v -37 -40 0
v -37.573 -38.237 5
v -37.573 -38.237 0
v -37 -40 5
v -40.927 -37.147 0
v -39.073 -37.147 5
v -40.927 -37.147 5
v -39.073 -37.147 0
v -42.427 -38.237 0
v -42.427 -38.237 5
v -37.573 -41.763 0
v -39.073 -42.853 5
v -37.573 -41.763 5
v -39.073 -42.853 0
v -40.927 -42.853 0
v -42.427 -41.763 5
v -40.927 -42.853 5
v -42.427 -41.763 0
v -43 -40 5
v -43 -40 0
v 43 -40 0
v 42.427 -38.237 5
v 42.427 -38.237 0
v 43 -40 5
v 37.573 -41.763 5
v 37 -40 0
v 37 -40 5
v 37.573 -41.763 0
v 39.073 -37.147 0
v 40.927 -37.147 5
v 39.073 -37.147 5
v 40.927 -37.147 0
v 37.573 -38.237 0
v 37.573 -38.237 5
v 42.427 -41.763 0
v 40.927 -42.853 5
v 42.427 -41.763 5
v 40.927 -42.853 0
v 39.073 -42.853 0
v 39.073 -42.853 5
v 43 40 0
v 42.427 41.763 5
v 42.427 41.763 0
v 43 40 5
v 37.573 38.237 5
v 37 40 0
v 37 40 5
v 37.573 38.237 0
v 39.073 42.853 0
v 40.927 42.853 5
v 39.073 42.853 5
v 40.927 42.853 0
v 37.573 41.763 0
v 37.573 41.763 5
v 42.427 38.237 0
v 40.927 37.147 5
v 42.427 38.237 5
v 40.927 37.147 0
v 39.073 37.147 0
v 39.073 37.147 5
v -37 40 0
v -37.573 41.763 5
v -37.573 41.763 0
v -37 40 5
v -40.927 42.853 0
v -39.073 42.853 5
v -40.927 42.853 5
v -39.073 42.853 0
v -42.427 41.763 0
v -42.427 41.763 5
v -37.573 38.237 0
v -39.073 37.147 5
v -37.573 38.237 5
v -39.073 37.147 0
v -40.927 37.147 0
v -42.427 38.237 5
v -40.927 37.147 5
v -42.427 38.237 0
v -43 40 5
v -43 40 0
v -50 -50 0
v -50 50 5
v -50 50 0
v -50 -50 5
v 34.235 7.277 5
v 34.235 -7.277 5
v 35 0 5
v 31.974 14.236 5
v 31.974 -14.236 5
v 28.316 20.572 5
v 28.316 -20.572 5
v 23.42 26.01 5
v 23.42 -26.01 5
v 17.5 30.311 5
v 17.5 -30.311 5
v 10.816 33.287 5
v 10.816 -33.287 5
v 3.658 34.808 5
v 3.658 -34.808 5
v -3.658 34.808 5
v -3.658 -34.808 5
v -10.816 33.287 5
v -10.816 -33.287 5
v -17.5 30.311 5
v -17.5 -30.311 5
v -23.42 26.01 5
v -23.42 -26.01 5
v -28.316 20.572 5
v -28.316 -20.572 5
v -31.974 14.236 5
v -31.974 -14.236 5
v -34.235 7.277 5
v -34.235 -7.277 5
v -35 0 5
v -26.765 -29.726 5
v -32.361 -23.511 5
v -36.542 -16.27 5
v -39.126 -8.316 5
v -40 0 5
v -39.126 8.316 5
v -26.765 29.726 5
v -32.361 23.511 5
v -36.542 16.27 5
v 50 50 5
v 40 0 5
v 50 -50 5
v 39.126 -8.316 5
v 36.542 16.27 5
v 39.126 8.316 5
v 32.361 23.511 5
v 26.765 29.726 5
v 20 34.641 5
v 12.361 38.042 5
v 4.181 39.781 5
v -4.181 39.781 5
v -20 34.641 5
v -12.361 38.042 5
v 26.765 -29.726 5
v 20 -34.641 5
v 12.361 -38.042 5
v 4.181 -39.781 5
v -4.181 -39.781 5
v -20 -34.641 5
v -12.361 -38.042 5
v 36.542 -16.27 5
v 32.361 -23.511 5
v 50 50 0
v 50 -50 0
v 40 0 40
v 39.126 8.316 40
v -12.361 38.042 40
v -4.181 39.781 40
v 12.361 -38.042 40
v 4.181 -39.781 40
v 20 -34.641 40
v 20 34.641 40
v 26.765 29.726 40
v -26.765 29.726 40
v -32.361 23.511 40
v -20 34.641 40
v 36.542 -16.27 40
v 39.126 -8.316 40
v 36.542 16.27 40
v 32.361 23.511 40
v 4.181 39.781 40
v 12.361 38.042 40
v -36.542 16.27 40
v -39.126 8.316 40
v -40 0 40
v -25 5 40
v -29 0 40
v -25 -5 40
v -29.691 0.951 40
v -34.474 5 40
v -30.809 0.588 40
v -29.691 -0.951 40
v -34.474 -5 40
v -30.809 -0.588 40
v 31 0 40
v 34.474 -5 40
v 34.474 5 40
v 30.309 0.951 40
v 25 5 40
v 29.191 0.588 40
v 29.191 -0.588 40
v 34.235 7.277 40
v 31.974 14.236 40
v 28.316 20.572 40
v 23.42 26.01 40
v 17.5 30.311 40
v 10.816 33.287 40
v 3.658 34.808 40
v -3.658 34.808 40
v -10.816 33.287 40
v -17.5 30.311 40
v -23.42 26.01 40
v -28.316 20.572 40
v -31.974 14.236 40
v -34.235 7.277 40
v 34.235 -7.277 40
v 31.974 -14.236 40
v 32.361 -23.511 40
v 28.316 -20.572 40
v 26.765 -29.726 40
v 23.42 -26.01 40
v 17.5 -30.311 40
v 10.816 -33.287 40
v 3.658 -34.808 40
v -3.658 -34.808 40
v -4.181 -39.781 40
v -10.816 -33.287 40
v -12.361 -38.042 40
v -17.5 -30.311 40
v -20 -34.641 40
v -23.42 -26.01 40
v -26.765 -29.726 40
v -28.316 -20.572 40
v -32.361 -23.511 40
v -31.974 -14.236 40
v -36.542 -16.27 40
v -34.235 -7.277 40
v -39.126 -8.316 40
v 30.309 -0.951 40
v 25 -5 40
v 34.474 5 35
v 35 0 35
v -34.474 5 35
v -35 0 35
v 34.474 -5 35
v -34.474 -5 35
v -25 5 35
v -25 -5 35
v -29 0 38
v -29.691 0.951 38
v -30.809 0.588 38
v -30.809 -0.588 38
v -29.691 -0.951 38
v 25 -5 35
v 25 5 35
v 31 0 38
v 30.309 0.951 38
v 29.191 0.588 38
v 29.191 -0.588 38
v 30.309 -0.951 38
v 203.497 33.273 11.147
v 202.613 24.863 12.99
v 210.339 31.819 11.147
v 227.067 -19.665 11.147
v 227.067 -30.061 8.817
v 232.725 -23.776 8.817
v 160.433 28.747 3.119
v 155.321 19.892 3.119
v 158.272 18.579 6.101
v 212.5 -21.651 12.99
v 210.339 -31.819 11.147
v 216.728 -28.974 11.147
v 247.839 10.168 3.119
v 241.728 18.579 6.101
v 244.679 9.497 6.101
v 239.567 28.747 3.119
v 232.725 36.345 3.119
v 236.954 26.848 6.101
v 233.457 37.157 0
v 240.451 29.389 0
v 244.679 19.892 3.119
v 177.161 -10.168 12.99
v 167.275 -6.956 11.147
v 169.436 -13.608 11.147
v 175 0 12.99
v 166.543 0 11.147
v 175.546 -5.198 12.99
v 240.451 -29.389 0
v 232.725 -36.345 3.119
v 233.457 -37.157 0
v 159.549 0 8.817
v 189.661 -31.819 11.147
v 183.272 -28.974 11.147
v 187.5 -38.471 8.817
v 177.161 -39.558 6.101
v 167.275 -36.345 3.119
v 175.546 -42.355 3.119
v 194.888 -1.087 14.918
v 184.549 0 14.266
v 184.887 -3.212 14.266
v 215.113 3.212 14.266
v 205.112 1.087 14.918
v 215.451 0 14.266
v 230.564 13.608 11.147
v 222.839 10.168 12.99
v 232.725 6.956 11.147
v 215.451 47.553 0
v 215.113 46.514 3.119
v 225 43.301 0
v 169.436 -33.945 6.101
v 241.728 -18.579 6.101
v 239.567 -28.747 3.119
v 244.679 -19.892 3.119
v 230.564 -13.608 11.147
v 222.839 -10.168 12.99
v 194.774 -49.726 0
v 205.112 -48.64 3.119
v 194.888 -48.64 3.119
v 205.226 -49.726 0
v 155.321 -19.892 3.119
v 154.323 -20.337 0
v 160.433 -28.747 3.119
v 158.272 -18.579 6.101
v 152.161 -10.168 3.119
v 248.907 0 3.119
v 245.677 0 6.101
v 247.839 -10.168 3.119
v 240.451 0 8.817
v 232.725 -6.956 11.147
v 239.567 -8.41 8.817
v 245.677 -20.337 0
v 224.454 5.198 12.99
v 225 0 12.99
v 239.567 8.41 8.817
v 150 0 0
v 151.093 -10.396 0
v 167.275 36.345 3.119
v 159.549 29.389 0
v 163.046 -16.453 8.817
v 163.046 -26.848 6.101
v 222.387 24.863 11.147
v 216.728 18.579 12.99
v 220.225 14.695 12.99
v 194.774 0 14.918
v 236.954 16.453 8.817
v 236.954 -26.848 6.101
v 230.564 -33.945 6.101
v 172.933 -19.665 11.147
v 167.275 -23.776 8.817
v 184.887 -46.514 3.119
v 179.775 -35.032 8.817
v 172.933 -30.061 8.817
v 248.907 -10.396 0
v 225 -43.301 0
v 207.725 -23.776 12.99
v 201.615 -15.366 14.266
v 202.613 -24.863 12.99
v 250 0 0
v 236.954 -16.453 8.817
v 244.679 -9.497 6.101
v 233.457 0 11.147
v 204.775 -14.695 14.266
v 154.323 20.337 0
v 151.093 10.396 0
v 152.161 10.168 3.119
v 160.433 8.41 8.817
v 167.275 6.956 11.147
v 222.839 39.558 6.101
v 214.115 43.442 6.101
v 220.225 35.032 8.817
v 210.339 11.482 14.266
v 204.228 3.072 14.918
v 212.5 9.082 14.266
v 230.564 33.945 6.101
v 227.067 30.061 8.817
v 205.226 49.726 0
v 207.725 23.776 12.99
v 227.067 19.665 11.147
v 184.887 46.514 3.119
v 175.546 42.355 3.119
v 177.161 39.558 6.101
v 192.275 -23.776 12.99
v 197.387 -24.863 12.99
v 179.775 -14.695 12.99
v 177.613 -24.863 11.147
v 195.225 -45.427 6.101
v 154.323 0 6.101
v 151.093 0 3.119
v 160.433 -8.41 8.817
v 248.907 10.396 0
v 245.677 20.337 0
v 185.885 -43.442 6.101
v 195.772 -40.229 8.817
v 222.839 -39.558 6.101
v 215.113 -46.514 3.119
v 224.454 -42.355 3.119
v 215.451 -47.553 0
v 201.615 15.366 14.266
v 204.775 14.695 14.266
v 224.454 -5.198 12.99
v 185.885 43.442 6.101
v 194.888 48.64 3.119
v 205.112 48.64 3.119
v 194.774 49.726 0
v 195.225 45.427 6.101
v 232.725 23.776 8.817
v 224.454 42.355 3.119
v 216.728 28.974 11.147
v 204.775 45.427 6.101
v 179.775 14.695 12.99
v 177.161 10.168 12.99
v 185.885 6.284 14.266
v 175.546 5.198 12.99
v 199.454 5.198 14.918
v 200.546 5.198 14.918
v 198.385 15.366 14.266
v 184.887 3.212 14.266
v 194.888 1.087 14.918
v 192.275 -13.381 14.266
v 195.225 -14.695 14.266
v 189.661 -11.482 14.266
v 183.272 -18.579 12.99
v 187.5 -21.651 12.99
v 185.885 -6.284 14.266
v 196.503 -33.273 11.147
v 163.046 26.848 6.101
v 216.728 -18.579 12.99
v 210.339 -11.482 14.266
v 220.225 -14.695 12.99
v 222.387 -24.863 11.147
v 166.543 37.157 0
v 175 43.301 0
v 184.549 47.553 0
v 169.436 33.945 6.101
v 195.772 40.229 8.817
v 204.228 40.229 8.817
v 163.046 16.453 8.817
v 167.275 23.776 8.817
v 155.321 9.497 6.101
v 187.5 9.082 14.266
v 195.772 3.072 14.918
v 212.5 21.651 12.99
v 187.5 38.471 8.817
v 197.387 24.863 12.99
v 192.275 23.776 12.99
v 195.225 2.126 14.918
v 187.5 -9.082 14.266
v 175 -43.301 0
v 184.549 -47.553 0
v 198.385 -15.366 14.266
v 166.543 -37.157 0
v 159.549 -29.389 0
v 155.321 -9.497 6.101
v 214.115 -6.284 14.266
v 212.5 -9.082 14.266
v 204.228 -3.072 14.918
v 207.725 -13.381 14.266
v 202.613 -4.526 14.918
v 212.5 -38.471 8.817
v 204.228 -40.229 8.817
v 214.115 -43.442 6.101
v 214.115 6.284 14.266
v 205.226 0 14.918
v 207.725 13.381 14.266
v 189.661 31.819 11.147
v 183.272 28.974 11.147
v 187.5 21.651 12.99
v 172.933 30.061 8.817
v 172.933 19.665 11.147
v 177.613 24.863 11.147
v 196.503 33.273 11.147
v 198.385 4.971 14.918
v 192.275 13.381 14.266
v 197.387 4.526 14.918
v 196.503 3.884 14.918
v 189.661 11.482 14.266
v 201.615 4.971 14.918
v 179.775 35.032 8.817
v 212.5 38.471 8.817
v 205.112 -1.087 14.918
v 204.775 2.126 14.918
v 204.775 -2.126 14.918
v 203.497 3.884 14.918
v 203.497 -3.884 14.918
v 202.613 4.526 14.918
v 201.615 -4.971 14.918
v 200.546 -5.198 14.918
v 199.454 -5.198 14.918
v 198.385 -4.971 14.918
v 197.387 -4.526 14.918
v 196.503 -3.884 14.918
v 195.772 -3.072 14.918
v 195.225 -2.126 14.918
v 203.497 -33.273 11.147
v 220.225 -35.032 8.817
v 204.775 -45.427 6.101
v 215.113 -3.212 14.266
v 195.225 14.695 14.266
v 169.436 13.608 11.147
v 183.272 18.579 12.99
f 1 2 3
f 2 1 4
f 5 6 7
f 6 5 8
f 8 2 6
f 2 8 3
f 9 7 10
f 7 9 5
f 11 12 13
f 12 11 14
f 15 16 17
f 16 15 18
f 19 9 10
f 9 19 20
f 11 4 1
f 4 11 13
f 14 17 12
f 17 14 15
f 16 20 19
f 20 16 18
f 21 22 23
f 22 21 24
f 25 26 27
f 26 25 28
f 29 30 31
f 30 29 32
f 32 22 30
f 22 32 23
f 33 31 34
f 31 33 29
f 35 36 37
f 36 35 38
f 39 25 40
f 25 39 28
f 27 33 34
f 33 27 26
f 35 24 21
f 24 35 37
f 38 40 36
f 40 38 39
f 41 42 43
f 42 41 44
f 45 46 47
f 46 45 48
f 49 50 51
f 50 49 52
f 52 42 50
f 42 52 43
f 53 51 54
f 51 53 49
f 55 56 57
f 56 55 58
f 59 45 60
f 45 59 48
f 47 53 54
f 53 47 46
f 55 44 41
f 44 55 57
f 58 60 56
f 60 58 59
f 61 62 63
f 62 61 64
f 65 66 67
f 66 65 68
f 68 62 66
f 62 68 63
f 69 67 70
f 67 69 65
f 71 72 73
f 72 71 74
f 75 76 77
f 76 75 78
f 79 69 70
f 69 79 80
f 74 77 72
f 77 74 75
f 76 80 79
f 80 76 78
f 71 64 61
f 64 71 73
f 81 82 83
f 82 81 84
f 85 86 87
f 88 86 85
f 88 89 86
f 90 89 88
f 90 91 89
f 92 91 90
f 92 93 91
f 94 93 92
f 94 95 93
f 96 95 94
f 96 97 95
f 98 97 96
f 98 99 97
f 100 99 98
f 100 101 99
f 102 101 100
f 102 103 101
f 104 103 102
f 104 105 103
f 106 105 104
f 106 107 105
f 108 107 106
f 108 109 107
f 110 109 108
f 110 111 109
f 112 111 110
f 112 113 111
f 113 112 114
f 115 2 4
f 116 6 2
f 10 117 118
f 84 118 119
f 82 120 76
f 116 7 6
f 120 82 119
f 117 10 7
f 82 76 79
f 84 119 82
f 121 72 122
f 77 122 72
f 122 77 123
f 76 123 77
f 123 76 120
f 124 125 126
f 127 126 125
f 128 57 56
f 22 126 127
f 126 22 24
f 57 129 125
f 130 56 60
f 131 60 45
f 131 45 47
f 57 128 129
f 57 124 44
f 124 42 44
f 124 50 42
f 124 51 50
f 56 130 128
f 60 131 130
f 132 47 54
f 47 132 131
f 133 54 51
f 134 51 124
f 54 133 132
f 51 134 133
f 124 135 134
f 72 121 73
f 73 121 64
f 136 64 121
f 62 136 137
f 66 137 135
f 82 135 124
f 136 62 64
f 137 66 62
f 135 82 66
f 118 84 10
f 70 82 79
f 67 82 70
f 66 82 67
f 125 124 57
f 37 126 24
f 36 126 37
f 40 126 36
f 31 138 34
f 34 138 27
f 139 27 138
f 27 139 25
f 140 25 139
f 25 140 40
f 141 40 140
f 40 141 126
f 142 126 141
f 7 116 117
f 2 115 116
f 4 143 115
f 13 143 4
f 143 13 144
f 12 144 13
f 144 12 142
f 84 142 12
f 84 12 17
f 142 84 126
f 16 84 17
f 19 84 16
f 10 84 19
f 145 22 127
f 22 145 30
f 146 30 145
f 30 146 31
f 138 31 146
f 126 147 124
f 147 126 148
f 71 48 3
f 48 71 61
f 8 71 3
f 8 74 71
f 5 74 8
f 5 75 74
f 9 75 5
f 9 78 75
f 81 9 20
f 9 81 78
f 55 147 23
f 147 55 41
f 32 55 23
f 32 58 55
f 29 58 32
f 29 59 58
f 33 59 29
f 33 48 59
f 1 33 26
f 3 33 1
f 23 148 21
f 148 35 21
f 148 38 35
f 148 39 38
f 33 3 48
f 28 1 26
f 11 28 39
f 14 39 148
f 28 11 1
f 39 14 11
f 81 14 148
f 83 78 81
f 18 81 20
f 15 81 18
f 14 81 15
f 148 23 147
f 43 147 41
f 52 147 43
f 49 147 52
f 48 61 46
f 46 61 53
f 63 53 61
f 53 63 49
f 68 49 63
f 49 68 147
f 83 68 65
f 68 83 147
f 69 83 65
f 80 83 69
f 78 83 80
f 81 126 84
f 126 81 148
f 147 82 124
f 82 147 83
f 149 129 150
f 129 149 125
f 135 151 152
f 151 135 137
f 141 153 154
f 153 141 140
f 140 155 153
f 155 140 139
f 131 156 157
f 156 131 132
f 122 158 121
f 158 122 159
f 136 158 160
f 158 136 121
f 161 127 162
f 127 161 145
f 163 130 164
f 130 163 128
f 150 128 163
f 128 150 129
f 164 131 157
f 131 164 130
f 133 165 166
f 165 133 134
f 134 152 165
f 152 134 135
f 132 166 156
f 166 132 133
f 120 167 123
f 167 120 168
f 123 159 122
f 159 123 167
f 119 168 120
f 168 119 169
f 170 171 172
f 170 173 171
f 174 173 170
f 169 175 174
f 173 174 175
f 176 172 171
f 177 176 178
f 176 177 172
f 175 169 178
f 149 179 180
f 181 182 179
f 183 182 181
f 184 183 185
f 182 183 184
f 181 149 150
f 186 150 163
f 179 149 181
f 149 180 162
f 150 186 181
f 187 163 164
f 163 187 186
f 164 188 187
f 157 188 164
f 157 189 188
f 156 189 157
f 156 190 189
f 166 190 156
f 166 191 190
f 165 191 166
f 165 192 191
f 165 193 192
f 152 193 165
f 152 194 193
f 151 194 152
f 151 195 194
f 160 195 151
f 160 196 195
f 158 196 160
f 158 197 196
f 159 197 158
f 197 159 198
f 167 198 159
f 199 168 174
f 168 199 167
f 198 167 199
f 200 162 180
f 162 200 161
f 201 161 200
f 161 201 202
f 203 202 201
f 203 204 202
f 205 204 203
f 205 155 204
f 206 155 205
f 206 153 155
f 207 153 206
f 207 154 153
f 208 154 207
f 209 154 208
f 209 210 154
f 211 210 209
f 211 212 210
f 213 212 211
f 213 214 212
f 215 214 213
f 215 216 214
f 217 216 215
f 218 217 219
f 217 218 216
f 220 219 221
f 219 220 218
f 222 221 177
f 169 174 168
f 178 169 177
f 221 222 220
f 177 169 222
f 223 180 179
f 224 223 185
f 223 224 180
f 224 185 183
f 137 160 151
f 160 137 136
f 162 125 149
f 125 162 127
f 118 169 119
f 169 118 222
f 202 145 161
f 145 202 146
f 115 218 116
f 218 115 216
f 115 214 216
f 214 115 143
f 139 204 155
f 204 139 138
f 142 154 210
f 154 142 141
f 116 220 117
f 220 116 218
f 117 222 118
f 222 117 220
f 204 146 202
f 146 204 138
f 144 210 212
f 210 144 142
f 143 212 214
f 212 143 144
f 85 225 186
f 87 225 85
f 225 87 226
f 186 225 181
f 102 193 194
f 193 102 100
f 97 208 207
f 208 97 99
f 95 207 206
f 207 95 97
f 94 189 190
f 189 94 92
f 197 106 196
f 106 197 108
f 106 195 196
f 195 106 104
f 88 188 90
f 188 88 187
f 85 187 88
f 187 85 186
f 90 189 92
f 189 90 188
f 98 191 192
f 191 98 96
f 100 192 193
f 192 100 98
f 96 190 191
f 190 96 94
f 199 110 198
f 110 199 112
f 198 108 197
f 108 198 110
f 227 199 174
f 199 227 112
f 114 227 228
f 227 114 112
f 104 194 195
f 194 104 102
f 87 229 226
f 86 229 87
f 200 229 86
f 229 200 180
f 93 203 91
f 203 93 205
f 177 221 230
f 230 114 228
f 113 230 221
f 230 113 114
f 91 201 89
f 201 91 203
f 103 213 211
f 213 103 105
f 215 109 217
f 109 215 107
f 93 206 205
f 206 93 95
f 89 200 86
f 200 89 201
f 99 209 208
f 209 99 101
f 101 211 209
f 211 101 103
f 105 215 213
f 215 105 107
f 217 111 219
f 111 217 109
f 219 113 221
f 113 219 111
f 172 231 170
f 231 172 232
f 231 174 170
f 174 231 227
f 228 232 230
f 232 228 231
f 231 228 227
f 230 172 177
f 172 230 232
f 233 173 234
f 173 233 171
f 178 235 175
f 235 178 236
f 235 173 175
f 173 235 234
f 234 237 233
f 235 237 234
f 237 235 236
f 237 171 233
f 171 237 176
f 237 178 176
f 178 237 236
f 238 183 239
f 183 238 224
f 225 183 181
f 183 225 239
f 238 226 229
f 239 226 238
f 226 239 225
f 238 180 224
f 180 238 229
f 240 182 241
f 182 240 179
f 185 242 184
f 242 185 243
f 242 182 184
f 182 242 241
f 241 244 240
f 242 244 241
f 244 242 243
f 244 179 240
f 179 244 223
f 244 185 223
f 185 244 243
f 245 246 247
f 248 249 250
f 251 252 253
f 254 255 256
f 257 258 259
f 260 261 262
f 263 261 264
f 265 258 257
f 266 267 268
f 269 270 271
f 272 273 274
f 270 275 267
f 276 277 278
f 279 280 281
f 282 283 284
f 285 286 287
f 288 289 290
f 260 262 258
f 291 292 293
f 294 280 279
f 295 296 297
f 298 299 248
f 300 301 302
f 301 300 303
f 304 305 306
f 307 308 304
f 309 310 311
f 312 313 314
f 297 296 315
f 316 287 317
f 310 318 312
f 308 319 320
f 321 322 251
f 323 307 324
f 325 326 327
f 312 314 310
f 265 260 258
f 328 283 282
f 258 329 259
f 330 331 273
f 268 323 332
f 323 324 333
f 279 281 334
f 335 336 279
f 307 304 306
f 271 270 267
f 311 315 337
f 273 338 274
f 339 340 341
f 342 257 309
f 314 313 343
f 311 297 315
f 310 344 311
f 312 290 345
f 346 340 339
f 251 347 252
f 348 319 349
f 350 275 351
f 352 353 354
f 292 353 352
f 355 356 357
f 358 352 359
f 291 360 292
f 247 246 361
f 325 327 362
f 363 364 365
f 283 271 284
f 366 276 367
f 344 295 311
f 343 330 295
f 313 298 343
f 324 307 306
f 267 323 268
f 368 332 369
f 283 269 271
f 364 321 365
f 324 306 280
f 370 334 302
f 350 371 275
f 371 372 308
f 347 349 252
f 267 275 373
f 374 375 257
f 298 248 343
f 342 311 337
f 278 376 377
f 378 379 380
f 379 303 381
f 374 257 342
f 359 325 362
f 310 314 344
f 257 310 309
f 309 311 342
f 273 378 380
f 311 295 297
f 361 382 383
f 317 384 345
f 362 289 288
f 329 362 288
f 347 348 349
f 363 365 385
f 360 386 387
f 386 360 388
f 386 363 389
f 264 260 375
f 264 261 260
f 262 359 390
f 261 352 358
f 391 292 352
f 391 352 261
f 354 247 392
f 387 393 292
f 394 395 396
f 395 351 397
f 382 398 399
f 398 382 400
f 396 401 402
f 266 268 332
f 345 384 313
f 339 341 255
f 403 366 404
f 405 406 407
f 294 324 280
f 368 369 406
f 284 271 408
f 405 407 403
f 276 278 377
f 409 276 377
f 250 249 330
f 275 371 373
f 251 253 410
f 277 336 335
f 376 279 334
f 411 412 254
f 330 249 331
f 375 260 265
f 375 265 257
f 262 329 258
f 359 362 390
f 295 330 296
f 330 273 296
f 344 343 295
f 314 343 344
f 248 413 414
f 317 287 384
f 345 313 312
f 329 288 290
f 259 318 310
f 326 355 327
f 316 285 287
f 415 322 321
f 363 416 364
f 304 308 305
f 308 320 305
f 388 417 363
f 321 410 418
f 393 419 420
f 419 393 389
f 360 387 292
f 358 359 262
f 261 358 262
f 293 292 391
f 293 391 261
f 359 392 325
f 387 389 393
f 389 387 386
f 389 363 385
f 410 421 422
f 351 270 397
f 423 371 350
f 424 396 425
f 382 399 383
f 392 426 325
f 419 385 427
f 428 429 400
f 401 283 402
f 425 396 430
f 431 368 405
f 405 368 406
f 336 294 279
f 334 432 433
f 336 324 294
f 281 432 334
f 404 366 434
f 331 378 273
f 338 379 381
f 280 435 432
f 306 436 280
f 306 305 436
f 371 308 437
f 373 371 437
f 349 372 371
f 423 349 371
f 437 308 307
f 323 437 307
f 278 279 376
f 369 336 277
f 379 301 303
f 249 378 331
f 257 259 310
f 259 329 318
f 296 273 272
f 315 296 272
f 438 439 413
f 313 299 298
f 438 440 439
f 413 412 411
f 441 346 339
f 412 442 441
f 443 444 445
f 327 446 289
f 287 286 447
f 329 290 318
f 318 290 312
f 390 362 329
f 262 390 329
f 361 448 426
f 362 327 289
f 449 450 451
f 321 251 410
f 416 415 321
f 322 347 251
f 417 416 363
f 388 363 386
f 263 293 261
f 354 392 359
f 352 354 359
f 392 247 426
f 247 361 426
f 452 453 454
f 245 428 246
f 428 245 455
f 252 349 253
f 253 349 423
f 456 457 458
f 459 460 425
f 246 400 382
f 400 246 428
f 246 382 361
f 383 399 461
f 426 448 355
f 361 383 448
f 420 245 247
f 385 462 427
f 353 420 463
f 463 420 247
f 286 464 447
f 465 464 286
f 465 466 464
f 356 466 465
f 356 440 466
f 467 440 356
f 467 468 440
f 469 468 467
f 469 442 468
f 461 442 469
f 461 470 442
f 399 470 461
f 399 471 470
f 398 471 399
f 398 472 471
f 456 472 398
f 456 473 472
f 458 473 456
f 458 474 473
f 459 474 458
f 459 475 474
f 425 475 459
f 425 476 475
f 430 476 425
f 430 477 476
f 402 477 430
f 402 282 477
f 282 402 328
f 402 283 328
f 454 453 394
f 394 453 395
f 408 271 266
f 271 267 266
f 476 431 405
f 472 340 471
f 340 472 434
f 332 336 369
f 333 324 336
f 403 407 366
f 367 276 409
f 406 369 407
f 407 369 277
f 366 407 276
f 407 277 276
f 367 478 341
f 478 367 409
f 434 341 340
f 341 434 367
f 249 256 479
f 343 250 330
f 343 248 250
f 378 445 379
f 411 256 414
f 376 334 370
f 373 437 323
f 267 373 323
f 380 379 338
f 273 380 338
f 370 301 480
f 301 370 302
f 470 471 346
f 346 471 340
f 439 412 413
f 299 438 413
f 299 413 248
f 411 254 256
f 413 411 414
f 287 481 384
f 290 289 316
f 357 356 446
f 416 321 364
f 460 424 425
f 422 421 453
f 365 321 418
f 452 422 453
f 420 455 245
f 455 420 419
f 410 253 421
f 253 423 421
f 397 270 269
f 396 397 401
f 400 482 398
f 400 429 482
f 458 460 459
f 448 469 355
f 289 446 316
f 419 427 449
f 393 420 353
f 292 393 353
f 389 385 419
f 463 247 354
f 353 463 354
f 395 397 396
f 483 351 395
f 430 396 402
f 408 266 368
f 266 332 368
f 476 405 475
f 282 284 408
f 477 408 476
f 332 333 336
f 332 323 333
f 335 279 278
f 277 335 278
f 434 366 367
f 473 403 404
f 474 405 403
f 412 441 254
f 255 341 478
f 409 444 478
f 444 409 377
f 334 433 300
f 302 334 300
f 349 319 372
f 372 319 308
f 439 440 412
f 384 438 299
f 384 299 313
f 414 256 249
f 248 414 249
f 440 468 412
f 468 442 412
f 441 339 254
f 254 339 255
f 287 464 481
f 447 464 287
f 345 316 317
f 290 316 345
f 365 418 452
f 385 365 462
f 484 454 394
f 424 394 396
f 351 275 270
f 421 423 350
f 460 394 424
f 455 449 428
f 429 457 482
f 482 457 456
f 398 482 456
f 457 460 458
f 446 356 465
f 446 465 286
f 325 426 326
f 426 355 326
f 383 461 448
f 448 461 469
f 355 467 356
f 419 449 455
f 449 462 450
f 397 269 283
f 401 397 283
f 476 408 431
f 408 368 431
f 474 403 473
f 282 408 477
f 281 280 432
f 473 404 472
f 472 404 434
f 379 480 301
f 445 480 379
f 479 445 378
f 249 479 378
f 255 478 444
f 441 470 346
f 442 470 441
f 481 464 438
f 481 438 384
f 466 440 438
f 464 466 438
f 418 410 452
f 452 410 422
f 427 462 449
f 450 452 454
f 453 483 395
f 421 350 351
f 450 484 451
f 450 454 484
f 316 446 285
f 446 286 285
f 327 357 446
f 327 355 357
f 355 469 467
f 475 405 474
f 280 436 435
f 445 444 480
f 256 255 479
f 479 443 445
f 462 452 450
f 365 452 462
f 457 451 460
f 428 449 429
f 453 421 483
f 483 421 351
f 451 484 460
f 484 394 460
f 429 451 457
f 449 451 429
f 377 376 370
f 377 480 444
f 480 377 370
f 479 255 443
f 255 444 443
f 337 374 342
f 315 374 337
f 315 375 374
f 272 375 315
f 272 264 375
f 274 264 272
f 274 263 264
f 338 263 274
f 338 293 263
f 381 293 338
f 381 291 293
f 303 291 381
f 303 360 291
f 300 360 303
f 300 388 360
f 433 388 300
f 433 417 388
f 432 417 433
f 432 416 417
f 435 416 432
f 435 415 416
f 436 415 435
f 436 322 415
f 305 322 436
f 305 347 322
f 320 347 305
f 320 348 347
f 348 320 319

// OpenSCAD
translate([-50,-50,0]){
    union(){
    
        difference(){
            cube([100,100,5]);
            union(){
                translate([10,10,5]){
                    cylinder(h=15,r=3, center= true);
                }
                translate([90,10,5]){
                    cylinder(h=15,r=3, center= true);
                }
                translate([90,90,5]){
                    cylinder(h=15,r=3, center= true);
                }
                translate([10,90,5]){
                    cylinder(h=15,r=3, center= true);
                }
                }
            }
        difference(){
            translate([50,50,0]){
                color("red")
                cylinder(h=40,r=40, center = false);
            }
            translate([50,50,5]){
                cylinder(h=40,r=35, center = false);
            }
        }
        
        translate([15,45,35]){
            difference(){
                color("green")
                cube([10,10,5]);
                translate([5,5,3]){
                    cylinder(h=10,r=1, center= false);
                }
            }
        }
        
        translate([75,45,35]){
            difference(){
                color("green")
                cube([10,10,5]);
                translate([5,5,3]){
                    cylinder(h=10,r=1, center= false);
                }
            }
        }
    }
}

translate([200,0,0]){
    difference(){
        difference(){
            scale([1,1,0.3]){
                sphere(50);
            }
            translate([-50,-50,-15])
            cube([100,100,15]);
        }
        
    }
}
    
